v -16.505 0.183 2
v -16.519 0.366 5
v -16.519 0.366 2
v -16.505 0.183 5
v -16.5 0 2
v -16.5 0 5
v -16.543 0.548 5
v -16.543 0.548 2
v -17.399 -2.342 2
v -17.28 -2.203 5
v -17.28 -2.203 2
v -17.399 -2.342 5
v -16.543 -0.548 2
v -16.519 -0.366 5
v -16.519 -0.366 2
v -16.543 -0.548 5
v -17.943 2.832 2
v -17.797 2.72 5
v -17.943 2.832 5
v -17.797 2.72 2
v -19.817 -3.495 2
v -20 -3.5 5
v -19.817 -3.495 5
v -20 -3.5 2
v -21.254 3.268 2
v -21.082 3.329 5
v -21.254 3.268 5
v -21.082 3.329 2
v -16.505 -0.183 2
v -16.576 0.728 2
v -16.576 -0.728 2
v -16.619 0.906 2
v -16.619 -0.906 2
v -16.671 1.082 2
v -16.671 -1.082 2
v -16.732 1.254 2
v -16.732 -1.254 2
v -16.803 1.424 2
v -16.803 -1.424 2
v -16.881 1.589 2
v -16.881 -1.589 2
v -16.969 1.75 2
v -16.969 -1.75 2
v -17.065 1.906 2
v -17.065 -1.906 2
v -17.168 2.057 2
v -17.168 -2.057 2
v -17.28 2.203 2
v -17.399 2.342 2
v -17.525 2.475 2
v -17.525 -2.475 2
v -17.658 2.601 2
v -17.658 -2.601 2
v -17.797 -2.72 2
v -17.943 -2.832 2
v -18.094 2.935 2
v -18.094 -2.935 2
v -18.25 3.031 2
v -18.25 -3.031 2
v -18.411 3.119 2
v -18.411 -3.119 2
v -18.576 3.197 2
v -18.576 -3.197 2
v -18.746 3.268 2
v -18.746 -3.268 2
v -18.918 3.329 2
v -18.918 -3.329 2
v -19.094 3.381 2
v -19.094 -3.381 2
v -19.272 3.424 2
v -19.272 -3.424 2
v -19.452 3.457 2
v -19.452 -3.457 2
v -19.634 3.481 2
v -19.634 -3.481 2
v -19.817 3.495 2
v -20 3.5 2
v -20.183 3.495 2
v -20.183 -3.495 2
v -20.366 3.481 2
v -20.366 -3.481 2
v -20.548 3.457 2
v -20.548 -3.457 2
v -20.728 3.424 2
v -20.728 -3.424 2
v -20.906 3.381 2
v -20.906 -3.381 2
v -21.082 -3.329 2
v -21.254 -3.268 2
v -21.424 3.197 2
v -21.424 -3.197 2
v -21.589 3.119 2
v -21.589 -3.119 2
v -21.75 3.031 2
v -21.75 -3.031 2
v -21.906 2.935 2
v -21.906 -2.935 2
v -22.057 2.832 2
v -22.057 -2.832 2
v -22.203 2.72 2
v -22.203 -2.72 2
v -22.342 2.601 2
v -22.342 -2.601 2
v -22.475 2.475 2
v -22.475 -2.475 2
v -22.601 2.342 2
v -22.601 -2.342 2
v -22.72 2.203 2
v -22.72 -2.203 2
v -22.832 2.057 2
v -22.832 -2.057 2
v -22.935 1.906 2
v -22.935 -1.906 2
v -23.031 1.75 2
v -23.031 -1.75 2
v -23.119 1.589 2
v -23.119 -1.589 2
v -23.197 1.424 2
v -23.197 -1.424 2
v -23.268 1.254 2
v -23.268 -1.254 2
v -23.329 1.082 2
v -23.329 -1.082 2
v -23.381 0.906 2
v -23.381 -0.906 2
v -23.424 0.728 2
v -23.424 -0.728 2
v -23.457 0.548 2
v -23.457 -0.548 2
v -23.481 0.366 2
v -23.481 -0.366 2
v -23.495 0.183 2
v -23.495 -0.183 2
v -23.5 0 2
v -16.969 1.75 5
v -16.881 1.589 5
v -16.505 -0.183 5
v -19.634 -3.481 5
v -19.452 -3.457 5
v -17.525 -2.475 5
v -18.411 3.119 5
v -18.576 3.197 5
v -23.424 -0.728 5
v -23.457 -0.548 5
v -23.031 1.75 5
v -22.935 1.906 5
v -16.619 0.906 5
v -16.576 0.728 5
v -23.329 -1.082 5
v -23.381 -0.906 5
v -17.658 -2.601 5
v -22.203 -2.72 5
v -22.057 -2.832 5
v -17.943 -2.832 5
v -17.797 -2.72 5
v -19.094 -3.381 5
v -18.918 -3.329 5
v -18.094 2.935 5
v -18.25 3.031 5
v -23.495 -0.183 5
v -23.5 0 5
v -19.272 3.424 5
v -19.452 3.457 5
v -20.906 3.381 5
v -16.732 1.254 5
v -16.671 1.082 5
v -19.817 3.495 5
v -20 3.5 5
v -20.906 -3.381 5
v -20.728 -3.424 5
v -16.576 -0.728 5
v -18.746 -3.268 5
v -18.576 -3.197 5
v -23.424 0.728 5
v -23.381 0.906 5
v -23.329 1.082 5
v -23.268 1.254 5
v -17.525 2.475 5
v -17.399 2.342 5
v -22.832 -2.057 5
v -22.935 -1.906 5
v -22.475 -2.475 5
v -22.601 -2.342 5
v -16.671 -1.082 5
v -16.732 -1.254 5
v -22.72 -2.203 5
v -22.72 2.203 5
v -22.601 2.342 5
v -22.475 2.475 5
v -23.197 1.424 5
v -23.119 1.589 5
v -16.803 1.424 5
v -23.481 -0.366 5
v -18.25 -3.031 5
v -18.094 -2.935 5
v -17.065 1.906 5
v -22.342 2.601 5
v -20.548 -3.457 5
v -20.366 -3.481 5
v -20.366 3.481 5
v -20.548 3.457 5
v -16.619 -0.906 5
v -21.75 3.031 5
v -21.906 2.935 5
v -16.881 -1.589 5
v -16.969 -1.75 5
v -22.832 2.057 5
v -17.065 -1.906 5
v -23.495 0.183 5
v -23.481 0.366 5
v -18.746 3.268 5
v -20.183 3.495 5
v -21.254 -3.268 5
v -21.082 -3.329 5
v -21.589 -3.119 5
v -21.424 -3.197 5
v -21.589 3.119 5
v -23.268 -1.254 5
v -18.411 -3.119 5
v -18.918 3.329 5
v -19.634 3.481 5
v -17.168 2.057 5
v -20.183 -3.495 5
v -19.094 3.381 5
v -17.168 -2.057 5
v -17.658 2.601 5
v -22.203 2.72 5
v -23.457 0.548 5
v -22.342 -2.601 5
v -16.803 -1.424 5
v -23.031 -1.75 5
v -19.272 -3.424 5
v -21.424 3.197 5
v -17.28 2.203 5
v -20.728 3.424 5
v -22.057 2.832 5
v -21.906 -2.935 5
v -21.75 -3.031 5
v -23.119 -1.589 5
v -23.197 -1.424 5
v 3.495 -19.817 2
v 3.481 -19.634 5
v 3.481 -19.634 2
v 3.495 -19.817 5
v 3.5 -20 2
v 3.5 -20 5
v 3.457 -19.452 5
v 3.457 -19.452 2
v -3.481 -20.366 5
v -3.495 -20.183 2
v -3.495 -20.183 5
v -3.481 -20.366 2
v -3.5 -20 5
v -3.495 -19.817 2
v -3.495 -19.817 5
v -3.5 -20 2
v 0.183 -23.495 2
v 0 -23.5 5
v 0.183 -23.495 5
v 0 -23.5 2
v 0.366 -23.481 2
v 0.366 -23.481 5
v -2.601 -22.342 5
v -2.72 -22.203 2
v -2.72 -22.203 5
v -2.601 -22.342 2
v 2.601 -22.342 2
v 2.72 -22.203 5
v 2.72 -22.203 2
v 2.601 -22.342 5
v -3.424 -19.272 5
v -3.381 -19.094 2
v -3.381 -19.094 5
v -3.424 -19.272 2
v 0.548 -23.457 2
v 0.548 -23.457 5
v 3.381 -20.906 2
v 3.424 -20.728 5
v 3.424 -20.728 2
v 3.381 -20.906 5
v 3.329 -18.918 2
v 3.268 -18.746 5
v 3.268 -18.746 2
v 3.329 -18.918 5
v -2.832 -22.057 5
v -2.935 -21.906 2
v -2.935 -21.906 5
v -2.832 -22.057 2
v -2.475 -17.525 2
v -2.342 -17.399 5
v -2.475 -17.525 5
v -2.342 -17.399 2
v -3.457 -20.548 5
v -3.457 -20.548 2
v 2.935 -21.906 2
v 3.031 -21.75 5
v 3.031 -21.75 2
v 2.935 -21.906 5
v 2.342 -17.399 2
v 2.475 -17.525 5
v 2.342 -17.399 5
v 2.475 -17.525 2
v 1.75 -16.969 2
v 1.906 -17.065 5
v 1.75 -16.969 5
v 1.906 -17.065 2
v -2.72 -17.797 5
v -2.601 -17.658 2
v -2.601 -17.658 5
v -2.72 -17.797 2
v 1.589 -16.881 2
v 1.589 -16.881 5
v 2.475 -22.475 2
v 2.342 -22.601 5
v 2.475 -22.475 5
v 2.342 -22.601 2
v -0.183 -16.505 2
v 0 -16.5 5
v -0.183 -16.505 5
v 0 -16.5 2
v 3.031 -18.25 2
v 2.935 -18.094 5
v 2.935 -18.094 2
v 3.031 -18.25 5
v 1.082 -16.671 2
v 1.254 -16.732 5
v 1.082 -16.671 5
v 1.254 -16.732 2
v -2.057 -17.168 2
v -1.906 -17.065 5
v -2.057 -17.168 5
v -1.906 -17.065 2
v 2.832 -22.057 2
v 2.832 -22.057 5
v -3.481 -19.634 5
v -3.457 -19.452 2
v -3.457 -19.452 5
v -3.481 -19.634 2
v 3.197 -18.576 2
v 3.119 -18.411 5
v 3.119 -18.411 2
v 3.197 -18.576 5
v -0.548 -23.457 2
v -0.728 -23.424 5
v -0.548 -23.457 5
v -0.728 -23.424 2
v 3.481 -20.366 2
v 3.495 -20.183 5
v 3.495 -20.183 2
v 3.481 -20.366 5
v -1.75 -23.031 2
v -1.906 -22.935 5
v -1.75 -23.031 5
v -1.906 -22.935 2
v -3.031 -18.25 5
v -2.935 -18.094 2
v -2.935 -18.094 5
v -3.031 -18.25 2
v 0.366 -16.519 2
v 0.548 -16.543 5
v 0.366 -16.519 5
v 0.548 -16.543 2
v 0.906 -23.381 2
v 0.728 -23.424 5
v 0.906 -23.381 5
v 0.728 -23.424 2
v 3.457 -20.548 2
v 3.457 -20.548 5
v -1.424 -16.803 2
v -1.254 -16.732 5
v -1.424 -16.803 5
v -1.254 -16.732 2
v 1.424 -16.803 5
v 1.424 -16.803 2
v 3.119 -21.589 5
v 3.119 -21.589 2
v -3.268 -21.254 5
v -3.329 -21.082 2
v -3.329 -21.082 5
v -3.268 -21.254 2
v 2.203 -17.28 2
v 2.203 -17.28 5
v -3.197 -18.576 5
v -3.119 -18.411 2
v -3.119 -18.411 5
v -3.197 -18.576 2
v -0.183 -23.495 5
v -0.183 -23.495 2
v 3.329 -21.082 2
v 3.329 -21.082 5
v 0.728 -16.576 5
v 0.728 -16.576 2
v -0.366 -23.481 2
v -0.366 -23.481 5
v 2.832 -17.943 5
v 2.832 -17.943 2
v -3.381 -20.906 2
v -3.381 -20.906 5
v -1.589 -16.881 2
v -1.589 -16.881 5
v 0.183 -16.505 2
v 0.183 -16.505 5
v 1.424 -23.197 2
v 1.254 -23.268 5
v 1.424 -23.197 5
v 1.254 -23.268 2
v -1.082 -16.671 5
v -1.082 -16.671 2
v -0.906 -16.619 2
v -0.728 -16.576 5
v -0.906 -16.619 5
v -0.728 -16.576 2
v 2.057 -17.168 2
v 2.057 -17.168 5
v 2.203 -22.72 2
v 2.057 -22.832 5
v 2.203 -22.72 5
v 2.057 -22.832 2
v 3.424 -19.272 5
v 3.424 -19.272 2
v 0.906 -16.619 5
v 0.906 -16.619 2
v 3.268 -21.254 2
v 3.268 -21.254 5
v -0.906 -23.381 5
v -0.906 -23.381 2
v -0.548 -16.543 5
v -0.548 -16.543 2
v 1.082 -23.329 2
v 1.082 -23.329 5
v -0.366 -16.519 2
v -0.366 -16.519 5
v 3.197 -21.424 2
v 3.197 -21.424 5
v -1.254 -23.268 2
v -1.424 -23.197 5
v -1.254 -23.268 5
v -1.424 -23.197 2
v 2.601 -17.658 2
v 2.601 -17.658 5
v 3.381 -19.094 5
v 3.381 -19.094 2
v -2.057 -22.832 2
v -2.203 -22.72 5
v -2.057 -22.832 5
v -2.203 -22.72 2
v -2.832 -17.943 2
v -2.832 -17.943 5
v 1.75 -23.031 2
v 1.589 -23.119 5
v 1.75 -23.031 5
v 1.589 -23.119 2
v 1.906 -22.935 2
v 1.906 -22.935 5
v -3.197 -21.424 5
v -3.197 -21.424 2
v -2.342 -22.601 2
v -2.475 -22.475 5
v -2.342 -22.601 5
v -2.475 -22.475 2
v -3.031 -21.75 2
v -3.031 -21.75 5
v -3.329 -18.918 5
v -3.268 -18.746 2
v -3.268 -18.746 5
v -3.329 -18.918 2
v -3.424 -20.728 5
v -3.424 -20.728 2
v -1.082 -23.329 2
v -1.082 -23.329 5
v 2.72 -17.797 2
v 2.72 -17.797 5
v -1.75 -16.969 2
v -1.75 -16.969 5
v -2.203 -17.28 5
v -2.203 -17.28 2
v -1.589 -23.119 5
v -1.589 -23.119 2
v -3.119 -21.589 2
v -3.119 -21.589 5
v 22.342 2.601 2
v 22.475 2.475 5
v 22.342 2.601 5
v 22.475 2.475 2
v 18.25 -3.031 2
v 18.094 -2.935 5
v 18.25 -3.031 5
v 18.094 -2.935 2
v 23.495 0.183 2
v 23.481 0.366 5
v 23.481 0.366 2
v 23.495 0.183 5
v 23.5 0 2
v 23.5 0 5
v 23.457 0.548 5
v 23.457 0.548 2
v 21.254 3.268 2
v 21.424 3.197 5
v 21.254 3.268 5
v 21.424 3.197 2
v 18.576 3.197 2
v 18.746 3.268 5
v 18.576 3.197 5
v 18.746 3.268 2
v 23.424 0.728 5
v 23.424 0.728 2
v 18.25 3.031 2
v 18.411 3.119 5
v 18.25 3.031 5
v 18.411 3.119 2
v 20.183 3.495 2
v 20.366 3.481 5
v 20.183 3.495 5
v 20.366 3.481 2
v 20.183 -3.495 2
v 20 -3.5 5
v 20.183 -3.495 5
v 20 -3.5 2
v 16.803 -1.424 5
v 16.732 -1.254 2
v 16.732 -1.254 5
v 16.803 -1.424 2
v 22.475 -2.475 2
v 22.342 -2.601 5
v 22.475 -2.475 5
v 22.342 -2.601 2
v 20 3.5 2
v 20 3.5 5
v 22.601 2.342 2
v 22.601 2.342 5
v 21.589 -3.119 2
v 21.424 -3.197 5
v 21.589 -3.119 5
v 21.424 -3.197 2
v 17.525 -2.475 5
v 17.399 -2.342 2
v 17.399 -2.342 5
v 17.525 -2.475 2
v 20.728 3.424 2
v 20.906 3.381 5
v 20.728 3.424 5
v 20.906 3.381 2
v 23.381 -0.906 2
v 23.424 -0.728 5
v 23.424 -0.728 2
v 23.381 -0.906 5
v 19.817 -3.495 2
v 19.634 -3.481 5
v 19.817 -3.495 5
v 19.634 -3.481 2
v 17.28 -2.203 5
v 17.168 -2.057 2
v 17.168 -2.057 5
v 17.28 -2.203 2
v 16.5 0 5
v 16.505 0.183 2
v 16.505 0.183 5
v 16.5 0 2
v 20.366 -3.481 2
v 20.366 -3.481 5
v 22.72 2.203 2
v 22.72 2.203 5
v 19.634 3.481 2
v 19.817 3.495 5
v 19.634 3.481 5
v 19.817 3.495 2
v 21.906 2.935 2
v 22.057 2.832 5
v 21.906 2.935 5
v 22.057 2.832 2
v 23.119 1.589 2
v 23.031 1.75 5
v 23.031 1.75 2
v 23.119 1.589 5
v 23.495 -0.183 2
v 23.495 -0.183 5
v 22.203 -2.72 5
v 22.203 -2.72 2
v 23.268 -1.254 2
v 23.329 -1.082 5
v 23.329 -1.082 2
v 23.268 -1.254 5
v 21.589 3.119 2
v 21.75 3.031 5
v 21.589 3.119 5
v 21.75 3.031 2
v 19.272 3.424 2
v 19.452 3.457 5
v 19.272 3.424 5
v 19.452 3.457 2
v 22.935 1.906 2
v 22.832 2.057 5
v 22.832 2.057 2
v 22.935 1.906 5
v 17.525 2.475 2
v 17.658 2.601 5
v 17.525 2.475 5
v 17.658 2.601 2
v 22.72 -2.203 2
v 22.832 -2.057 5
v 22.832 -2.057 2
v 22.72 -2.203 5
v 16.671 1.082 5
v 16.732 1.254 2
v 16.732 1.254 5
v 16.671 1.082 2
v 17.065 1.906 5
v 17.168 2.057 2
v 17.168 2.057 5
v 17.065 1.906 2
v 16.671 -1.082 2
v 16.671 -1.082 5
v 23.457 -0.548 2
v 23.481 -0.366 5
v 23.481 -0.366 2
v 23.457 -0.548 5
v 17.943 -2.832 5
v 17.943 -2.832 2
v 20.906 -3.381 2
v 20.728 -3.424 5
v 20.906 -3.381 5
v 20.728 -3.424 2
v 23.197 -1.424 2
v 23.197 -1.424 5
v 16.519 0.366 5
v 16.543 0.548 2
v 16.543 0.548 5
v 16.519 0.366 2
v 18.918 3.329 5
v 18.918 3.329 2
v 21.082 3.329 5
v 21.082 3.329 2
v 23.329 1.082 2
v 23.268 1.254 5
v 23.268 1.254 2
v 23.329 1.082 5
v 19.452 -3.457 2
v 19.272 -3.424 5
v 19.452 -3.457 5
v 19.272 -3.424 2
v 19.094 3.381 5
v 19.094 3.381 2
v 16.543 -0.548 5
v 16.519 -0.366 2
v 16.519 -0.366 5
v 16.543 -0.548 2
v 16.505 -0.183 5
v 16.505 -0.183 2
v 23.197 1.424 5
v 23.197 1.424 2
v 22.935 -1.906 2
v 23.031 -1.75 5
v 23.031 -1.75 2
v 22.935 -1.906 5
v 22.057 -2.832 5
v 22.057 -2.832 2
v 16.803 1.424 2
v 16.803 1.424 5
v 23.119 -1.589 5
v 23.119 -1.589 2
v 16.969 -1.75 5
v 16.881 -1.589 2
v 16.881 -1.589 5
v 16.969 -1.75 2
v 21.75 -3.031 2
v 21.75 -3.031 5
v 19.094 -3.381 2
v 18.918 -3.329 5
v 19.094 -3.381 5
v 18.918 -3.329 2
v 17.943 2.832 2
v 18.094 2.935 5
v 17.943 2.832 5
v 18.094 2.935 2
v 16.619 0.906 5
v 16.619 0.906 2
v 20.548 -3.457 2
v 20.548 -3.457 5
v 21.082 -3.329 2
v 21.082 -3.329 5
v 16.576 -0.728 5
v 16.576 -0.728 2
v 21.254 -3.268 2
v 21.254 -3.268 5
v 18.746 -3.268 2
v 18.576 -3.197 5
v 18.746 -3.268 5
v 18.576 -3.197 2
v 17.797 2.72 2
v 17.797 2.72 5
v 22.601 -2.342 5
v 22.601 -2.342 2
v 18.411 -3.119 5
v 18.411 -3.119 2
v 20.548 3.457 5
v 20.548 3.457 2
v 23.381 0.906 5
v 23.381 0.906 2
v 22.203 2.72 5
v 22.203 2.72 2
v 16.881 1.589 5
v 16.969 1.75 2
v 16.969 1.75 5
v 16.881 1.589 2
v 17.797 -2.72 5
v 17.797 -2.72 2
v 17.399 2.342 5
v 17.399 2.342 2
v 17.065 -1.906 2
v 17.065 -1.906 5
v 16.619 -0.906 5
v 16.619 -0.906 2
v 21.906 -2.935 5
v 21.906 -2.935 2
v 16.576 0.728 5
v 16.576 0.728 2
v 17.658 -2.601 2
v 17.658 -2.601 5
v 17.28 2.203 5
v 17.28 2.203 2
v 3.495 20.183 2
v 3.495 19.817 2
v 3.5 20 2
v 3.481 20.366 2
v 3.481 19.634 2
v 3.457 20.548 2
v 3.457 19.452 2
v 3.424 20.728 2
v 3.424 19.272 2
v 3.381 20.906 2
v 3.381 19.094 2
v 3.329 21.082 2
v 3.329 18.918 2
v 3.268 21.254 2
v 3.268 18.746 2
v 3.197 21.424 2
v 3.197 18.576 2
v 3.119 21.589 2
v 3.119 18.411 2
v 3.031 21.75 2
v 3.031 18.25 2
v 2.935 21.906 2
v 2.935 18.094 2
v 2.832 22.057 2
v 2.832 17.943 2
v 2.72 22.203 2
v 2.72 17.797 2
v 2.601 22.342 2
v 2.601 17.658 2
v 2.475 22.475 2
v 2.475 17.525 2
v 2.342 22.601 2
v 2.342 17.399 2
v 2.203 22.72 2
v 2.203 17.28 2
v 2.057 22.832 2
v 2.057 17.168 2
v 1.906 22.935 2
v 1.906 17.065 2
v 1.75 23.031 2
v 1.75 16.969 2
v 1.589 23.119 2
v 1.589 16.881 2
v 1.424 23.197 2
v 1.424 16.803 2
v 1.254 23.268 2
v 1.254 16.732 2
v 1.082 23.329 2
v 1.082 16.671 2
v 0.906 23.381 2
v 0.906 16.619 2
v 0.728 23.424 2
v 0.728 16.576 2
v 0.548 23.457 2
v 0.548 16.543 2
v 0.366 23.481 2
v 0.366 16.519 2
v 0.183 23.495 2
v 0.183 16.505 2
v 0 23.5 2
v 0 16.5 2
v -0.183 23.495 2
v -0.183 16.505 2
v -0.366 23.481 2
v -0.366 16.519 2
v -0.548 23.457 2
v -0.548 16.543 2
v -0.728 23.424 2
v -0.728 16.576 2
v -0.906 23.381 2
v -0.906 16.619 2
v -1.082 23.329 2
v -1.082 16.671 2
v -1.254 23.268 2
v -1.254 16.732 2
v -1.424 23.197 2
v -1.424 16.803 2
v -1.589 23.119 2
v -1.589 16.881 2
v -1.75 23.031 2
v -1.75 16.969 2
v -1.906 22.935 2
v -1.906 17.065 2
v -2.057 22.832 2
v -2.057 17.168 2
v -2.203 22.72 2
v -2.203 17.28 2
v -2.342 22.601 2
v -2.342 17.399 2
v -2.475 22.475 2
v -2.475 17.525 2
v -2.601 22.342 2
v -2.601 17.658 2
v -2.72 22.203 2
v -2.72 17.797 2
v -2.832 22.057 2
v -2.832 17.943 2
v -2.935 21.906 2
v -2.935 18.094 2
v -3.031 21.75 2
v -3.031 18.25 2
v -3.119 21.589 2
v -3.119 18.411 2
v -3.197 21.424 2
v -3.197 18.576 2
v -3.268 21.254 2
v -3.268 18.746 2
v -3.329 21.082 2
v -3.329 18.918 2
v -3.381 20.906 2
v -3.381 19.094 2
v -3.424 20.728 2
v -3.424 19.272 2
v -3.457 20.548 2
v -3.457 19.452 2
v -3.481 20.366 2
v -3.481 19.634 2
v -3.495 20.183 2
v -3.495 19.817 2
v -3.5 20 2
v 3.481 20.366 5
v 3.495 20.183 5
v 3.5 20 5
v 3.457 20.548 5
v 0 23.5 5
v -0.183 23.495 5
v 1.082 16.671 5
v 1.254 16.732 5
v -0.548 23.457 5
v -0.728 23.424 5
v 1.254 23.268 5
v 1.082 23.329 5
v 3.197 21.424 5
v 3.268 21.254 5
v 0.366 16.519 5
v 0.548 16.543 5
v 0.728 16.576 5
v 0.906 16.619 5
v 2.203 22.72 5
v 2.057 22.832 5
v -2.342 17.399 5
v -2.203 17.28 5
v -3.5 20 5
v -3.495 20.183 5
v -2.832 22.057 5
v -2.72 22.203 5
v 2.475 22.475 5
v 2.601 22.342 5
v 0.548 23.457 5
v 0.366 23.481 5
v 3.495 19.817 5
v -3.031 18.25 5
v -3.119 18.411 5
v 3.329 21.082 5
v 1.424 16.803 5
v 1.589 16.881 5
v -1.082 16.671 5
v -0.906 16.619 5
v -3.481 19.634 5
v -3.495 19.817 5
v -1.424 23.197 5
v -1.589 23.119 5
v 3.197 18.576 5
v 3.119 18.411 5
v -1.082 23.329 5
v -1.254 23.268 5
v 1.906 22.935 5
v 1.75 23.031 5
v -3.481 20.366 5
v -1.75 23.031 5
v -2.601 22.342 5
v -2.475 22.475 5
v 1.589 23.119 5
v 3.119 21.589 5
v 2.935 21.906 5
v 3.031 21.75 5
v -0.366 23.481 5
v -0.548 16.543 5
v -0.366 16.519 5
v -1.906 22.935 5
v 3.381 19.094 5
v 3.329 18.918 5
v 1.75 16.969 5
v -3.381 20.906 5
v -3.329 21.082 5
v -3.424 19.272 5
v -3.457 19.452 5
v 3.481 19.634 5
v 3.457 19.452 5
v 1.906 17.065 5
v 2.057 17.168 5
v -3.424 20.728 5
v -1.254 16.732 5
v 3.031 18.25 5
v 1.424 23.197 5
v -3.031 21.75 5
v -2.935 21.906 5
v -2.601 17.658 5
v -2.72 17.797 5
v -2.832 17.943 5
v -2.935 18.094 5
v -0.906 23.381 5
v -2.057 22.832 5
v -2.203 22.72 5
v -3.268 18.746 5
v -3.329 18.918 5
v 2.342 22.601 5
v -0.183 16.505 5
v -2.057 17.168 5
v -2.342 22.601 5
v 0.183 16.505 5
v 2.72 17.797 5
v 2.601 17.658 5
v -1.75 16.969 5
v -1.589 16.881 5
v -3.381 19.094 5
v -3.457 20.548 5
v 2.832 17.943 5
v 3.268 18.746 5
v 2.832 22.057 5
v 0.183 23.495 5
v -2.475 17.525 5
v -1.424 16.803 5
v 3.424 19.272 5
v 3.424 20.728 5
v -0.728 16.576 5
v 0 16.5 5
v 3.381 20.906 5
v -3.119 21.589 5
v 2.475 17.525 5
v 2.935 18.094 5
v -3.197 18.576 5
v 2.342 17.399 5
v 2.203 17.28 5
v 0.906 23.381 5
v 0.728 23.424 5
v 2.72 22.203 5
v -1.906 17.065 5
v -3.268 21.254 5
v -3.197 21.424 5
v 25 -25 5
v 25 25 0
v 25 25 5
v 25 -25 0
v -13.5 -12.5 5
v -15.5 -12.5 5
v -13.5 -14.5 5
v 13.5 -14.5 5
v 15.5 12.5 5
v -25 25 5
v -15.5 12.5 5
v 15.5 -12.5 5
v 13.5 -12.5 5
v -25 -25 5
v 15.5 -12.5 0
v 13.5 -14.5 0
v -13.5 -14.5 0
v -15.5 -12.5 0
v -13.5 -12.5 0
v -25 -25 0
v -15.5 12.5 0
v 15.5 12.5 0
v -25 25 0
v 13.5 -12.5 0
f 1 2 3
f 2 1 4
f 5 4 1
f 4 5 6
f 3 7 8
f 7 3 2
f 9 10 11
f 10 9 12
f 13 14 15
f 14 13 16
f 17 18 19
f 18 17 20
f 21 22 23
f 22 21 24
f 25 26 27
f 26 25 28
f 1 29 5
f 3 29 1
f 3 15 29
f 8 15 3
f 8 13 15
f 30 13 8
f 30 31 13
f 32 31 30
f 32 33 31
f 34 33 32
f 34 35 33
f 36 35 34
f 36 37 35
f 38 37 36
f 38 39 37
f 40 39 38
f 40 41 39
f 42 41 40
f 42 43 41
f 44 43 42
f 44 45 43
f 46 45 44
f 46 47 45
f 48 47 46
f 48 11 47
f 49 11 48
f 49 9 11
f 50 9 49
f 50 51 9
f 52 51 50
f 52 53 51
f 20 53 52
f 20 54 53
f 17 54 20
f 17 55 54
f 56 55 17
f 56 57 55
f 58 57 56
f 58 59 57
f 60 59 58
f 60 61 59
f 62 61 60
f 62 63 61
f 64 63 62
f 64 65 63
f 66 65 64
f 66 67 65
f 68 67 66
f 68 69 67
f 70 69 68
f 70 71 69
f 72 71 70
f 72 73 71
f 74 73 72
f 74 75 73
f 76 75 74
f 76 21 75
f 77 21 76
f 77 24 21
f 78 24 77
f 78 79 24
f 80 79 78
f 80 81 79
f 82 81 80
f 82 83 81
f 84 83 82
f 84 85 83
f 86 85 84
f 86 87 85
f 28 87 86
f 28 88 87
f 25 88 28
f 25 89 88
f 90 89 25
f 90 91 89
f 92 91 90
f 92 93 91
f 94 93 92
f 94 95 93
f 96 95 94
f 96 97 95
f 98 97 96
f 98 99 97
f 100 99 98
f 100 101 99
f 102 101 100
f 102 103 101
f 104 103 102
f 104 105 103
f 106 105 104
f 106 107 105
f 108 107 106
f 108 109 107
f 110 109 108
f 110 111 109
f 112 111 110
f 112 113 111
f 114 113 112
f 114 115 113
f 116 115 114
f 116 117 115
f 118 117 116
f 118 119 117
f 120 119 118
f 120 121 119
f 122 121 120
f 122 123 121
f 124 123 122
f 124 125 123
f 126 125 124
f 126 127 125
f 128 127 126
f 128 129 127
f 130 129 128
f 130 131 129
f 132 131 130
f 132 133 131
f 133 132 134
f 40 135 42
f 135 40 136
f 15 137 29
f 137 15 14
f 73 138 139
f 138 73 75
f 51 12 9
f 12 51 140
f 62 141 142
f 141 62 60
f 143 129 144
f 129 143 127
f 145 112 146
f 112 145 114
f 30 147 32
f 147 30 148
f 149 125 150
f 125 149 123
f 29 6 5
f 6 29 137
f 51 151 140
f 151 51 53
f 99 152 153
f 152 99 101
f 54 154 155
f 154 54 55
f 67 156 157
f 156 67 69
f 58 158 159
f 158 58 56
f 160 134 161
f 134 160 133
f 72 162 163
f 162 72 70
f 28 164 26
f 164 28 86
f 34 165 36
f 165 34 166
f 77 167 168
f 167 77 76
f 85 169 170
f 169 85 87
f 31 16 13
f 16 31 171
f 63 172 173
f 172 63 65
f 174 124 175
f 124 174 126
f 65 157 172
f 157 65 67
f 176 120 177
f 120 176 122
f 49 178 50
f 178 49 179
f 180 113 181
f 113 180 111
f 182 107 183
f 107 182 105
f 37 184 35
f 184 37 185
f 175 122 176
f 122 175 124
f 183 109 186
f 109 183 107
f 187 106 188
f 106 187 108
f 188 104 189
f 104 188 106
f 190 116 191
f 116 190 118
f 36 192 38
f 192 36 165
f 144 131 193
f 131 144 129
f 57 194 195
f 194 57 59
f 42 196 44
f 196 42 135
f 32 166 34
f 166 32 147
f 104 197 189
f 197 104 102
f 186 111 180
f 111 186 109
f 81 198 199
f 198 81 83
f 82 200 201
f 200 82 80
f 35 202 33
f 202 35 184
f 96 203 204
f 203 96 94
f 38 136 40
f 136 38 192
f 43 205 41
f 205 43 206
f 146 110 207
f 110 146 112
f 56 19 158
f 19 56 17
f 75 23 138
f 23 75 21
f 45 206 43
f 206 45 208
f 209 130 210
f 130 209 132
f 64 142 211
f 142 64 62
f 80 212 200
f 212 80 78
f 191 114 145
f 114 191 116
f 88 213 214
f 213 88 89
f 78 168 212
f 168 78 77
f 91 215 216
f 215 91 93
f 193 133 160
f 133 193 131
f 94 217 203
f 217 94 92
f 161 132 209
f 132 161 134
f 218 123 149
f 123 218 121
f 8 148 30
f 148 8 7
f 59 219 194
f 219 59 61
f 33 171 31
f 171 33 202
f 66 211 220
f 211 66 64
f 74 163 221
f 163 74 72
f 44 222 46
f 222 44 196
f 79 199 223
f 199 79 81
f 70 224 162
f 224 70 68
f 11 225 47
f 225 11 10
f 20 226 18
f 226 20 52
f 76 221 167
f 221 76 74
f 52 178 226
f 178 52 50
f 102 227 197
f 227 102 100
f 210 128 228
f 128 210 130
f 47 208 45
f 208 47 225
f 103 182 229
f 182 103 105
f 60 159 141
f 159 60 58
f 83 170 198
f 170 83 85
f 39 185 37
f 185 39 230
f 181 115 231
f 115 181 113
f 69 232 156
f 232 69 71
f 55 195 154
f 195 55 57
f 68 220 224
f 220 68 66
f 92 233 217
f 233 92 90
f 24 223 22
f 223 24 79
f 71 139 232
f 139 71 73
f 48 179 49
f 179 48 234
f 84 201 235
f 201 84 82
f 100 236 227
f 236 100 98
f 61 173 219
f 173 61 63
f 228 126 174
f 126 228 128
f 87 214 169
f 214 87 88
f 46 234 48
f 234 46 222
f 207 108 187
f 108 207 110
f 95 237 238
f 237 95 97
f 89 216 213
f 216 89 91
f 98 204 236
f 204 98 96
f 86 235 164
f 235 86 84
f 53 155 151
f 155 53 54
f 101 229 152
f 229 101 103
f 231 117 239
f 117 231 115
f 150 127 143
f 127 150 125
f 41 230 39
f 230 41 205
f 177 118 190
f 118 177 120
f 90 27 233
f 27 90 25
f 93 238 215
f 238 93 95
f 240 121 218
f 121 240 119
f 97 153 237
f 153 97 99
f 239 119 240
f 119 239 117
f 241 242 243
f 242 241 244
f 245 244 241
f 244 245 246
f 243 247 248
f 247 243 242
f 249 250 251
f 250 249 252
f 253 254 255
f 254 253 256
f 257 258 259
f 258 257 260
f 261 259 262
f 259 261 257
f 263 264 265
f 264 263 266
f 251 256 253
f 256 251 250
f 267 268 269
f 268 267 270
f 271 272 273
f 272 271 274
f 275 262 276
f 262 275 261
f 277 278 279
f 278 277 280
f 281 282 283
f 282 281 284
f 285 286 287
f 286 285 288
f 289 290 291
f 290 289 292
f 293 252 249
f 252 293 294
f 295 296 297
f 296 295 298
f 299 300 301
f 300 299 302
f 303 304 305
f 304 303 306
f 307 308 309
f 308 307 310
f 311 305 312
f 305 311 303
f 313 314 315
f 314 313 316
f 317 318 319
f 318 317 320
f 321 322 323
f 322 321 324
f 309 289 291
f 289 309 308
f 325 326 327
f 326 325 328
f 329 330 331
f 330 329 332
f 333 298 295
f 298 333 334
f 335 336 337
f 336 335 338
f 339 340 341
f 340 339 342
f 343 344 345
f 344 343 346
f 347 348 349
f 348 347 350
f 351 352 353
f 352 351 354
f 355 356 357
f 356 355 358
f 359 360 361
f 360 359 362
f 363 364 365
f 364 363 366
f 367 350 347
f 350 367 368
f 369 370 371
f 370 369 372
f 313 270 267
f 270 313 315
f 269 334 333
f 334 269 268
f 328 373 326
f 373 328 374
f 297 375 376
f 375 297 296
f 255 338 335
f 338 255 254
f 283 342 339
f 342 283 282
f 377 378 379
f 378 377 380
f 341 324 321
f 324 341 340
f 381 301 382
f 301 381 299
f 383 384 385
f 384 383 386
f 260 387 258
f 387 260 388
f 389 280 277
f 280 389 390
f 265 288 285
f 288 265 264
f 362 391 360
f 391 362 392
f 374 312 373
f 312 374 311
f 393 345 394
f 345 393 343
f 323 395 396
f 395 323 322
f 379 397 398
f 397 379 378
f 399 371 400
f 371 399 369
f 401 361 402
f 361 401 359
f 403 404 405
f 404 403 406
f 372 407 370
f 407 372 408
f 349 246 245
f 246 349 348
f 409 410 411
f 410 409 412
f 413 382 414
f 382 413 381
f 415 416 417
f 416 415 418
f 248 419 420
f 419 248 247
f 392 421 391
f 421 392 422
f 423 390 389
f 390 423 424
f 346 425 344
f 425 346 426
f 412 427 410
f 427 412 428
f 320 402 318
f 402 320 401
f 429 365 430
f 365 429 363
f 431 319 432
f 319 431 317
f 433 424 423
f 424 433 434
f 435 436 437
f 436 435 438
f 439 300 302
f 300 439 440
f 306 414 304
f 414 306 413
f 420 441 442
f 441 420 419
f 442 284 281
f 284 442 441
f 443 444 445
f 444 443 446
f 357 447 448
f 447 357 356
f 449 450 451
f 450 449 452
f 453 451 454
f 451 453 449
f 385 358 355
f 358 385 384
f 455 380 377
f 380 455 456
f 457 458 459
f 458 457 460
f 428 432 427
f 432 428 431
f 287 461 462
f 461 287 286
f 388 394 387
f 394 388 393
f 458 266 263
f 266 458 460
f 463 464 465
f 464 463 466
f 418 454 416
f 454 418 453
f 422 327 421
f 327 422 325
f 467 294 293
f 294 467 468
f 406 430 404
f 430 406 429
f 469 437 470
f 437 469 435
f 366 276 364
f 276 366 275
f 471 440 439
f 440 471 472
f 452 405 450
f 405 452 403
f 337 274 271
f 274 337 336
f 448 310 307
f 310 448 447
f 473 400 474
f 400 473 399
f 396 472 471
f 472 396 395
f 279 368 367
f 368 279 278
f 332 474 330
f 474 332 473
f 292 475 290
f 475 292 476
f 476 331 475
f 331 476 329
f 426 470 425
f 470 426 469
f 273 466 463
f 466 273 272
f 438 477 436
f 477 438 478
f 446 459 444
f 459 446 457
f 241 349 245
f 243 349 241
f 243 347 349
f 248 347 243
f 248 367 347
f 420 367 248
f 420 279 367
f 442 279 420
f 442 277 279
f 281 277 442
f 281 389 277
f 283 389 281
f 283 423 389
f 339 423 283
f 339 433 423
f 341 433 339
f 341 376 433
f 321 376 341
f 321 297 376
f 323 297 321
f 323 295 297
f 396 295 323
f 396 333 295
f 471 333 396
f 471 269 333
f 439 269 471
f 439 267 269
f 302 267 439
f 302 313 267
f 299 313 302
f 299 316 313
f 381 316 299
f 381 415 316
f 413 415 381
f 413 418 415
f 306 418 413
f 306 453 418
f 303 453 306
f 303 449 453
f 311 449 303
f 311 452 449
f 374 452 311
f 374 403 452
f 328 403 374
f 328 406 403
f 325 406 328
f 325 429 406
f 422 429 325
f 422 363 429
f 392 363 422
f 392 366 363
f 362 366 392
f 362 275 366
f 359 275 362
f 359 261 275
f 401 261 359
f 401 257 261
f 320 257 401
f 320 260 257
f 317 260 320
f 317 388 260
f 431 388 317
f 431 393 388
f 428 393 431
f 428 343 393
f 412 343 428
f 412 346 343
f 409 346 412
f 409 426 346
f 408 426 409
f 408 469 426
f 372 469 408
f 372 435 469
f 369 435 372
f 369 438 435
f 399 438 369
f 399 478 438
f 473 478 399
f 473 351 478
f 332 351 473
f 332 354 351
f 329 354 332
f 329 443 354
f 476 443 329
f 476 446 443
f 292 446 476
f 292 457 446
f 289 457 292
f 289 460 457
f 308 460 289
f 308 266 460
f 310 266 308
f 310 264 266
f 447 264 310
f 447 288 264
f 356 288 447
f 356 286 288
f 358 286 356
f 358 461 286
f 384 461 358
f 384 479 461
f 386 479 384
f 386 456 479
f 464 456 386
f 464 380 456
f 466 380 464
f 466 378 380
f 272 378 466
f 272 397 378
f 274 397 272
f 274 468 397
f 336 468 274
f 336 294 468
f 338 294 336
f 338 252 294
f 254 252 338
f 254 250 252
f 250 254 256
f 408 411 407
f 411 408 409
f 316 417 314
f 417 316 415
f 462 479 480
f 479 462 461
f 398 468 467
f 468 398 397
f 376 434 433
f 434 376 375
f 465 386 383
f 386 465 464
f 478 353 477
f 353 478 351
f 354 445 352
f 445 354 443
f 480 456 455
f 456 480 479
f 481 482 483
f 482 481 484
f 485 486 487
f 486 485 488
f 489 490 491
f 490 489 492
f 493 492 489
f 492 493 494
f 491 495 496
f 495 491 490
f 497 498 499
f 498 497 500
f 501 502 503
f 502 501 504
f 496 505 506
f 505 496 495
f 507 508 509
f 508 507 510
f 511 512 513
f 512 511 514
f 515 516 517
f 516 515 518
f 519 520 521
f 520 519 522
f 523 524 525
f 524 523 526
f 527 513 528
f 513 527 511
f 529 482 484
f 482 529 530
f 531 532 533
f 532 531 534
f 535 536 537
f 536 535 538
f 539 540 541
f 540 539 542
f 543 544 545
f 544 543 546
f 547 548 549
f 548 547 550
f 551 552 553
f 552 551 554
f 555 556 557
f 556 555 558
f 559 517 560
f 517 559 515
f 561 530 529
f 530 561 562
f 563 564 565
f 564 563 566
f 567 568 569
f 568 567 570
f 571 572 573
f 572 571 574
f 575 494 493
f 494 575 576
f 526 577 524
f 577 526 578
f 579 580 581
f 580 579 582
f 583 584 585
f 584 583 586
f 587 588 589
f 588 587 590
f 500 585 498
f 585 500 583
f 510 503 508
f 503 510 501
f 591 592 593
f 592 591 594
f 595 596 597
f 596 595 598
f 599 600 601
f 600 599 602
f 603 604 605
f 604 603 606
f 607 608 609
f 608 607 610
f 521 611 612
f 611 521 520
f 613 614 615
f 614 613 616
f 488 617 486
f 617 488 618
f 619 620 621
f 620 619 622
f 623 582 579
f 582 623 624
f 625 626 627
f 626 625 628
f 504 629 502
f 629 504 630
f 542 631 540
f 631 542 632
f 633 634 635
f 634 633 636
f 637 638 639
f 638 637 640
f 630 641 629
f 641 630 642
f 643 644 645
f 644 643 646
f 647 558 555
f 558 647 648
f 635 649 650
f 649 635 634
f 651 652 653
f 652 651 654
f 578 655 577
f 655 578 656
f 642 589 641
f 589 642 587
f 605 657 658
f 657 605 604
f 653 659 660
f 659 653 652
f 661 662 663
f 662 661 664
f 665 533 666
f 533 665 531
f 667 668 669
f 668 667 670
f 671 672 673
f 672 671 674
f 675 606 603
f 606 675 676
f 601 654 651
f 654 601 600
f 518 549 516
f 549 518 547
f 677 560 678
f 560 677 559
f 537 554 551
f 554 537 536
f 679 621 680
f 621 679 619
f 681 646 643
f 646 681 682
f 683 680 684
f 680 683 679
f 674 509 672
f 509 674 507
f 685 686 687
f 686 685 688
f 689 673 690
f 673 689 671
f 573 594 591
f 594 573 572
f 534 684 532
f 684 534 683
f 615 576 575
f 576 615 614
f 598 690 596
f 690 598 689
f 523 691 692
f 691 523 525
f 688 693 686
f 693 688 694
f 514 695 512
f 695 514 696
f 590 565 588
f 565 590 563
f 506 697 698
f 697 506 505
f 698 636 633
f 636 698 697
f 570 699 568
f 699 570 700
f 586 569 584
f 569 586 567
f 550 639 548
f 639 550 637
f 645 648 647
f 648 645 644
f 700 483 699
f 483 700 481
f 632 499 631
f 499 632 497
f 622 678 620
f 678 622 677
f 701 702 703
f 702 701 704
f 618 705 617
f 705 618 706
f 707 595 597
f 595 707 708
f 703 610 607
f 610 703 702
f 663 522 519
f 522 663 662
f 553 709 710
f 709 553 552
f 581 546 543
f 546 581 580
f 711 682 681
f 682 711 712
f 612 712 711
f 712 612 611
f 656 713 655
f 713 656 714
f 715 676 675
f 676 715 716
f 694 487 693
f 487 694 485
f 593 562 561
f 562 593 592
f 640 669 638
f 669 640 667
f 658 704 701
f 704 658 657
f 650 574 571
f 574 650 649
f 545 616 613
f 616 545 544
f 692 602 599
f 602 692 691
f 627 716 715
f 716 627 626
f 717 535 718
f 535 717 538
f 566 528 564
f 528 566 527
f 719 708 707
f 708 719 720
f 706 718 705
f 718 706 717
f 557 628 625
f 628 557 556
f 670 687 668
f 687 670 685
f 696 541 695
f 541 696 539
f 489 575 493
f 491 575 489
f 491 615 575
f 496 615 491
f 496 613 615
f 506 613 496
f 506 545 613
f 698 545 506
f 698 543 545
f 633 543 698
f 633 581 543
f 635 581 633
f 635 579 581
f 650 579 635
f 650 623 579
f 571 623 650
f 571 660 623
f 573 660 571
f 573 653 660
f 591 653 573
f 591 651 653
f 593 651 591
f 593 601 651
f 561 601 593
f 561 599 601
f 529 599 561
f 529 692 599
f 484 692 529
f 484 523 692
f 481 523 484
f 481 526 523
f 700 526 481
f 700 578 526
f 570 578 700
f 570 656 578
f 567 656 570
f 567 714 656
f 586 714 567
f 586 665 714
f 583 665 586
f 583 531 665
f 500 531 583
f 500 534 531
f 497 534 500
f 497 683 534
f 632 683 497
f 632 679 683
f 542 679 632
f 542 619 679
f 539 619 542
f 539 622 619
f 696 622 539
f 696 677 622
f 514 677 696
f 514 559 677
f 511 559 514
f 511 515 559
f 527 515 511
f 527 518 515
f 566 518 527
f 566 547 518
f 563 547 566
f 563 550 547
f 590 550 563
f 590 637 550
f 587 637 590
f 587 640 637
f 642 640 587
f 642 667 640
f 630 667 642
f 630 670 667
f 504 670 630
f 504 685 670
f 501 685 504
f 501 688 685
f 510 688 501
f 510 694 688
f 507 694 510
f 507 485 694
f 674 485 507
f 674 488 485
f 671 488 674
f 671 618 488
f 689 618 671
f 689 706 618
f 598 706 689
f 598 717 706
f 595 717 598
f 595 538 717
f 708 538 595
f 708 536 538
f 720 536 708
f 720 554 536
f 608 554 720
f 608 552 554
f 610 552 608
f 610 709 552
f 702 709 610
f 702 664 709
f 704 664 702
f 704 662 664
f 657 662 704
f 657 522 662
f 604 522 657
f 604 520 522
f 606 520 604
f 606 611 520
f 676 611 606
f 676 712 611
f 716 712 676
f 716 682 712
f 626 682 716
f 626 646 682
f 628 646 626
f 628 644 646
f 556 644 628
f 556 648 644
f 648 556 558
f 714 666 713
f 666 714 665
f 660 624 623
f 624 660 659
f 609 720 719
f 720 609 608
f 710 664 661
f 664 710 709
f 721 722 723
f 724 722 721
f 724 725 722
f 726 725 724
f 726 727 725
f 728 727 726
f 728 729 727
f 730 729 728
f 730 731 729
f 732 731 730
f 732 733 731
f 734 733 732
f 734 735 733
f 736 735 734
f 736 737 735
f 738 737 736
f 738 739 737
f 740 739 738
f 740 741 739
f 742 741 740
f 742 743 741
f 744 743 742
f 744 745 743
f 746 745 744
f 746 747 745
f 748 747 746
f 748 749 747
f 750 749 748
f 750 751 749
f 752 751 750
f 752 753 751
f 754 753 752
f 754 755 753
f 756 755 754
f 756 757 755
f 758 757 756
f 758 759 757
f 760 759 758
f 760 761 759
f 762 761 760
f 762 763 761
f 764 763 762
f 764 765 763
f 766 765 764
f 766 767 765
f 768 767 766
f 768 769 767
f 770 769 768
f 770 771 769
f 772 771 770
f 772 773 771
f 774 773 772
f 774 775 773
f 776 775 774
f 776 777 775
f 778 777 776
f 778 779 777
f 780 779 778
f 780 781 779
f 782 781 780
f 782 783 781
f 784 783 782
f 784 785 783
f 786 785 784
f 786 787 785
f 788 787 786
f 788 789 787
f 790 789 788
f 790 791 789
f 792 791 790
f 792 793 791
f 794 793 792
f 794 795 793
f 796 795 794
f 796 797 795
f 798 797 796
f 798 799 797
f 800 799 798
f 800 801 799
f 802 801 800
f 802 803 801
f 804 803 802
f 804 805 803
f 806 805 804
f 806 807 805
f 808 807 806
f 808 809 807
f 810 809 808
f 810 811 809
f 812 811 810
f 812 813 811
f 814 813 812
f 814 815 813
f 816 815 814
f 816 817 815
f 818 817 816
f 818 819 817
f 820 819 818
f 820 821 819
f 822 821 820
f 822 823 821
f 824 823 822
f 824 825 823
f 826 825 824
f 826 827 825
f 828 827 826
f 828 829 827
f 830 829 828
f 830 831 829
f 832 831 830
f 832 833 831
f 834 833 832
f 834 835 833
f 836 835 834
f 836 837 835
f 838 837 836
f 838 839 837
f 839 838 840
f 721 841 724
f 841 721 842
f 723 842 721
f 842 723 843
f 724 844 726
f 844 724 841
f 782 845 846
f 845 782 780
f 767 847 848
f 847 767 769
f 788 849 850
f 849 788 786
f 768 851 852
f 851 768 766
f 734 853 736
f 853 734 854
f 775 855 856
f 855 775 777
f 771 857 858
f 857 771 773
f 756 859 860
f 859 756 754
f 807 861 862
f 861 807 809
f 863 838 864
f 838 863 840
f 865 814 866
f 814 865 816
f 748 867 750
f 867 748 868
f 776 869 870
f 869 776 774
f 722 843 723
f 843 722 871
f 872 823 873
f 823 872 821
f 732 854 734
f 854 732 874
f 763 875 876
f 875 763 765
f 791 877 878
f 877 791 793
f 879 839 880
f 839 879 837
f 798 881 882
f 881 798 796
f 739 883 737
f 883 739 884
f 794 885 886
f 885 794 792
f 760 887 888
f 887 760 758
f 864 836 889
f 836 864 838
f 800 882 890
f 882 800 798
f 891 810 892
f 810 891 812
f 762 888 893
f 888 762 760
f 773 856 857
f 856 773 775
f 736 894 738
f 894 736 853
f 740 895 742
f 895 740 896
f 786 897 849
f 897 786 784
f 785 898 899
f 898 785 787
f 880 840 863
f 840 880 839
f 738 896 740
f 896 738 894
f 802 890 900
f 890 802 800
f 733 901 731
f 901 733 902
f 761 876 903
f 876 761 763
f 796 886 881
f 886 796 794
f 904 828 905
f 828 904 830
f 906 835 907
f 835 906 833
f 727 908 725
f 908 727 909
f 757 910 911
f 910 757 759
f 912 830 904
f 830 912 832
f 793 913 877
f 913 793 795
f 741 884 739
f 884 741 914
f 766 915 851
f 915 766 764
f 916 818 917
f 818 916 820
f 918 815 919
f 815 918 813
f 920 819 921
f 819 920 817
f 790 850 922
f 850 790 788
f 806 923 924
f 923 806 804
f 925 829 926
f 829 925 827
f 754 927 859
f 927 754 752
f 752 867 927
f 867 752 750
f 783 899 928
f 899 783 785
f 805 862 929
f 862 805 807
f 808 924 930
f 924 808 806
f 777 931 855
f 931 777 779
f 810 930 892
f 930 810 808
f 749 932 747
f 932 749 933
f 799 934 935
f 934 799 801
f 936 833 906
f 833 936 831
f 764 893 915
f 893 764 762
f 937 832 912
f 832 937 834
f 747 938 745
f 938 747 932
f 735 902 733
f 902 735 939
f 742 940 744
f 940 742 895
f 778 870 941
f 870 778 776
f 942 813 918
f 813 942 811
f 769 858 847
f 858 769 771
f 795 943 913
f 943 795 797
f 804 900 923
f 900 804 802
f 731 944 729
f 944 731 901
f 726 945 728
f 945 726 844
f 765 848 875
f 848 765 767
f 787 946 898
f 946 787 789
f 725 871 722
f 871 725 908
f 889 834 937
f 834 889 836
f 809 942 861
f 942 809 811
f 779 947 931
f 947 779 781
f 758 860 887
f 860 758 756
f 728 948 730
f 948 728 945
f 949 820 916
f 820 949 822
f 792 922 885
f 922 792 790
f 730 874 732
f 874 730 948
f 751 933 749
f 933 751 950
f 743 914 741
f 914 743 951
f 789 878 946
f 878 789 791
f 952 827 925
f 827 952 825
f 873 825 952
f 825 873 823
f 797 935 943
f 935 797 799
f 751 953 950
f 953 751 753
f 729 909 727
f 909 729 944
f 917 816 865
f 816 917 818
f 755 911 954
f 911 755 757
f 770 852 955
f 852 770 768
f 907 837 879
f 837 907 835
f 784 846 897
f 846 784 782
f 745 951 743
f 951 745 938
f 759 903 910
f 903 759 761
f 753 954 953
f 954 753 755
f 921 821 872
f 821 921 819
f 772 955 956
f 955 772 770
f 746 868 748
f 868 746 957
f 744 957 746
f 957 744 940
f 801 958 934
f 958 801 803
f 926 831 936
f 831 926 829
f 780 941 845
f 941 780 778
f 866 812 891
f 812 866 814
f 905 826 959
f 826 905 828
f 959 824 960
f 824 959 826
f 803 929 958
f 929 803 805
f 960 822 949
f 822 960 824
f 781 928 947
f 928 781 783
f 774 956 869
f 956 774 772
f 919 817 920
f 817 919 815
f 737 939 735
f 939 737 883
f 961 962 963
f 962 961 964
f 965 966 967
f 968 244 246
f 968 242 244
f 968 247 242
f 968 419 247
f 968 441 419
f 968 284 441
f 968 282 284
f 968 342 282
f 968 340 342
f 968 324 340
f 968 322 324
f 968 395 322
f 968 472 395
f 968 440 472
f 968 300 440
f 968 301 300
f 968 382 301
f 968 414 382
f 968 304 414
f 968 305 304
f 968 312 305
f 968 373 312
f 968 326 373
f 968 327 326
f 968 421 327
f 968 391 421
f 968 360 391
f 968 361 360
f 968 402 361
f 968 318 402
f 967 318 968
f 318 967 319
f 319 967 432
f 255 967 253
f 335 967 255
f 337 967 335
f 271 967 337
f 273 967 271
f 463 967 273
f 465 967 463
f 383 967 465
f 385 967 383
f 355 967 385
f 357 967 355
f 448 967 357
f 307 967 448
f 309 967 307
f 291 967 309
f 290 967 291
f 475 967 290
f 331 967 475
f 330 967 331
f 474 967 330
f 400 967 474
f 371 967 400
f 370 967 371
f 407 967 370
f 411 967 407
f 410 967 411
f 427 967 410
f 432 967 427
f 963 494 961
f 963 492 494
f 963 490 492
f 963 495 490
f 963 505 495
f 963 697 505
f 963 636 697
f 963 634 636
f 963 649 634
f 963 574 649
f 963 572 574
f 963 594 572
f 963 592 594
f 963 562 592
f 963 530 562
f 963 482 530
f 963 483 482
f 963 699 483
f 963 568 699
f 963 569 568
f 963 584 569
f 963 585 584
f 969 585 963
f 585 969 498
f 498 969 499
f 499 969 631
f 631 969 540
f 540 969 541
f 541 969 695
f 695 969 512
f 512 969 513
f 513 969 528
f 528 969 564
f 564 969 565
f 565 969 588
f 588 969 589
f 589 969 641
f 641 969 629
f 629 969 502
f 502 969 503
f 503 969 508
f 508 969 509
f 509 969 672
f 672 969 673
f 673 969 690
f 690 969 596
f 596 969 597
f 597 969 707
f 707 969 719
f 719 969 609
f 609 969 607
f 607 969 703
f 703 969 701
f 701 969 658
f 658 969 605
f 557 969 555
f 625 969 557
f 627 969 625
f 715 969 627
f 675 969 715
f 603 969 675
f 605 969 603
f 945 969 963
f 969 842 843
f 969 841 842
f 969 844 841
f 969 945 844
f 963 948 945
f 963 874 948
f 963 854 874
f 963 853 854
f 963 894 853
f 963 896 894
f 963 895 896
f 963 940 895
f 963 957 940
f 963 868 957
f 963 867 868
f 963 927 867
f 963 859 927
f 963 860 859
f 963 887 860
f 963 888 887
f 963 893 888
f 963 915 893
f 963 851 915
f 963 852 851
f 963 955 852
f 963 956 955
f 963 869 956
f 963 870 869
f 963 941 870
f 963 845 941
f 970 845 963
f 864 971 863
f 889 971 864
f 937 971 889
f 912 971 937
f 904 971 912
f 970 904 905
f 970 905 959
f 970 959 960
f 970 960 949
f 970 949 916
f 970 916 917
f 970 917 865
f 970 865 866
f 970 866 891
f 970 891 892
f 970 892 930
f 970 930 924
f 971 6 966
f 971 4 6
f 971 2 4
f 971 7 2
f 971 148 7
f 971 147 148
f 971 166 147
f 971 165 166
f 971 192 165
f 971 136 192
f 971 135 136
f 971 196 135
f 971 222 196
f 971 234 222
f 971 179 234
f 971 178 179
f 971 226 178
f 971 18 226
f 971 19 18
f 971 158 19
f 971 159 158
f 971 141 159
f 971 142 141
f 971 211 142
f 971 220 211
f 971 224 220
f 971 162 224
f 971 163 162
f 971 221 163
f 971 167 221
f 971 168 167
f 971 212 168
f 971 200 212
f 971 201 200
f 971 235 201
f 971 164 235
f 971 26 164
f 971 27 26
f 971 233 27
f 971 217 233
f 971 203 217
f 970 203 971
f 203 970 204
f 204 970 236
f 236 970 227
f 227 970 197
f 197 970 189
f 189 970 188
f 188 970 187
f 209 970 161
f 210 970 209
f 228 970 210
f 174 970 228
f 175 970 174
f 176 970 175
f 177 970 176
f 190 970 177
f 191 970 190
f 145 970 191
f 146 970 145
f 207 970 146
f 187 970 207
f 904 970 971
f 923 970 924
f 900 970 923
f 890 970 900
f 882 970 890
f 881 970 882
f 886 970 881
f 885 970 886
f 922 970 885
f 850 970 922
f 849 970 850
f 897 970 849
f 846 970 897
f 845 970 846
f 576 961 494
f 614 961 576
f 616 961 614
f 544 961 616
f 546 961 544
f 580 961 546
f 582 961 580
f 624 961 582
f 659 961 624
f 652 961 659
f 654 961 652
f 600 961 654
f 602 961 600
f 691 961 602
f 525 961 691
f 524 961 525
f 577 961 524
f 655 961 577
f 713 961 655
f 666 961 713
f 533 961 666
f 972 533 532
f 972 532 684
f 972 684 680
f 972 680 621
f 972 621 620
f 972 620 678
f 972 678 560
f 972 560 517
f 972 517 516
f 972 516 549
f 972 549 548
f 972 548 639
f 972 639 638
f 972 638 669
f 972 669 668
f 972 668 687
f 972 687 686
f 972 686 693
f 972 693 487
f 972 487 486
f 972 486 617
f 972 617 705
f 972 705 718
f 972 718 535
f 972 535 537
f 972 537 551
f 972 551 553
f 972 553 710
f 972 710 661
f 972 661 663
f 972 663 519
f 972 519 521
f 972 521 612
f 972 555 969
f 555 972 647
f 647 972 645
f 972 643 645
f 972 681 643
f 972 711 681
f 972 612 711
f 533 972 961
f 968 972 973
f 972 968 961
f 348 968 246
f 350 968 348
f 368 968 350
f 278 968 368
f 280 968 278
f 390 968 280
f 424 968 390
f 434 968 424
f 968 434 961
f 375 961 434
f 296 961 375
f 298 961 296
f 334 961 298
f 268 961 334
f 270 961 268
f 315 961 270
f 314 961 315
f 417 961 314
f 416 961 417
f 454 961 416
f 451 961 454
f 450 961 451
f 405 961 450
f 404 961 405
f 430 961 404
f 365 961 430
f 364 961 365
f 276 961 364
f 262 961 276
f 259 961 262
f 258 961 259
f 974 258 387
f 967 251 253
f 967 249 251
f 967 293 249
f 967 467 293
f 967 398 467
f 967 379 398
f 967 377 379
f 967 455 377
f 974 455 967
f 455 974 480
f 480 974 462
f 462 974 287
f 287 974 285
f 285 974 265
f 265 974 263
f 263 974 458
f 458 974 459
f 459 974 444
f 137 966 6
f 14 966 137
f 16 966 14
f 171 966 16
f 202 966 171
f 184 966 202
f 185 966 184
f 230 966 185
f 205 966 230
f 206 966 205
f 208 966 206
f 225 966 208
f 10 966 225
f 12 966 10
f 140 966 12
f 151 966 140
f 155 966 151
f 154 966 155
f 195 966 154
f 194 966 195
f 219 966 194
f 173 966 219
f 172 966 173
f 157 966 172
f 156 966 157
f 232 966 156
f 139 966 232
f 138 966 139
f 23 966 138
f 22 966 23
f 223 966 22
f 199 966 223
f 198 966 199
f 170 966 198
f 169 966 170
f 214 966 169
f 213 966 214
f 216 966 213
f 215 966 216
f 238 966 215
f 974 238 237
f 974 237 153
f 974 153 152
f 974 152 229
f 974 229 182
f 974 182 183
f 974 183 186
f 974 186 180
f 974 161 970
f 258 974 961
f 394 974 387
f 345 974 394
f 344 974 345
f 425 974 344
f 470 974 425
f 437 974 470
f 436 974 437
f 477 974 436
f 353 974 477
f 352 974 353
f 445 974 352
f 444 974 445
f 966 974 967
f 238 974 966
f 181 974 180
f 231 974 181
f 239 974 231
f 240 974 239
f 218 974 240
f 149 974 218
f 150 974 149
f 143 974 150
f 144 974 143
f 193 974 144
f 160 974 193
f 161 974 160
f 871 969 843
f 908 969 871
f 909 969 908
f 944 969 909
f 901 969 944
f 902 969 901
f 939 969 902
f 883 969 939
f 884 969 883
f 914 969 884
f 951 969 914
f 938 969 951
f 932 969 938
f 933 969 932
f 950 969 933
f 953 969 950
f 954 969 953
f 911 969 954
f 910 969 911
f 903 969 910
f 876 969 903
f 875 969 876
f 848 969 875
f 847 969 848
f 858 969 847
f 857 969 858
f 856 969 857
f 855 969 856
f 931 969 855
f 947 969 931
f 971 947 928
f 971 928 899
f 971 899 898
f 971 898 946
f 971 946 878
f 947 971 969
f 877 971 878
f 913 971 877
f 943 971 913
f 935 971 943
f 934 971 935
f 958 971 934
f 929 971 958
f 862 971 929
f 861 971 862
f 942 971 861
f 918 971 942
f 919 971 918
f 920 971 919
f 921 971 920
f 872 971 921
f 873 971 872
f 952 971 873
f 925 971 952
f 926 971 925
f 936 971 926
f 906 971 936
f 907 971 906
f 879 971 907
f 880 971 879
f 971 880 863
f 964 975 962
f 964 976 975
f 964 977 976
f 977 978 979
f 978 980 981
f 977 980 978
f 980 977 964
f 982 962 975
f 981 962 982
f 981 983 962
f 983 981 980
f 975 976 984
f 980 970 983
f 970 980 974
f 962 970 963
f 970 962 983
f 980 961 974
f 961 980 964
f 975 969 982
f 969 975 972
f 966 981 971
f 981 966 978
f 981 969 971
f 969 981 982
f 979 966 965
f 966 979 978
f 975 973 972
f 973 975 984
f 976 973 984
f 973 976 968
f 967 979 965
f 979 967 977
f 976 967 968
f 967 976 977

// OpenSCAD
// Shelly Mini PCB base

$fn=120;

difference()
{
    translate([-25,-25,0])
        cube([50,50,5]);
    translate([0,0,2])
    {
        translate([-20,0])cylinder(d=7,h=4);
        translate([0,-20])cylinder(d=7,h=4);
        translate([20,0])cylinder(d=7,h=4);
        translate([0,20])cylinder(d=7,h=4);
    }
    translate([-15.5,-12.5,-1])cube([31,25,7]);
    translate([-13.5,-14.5,-1])cube([27,5,7]);
}
